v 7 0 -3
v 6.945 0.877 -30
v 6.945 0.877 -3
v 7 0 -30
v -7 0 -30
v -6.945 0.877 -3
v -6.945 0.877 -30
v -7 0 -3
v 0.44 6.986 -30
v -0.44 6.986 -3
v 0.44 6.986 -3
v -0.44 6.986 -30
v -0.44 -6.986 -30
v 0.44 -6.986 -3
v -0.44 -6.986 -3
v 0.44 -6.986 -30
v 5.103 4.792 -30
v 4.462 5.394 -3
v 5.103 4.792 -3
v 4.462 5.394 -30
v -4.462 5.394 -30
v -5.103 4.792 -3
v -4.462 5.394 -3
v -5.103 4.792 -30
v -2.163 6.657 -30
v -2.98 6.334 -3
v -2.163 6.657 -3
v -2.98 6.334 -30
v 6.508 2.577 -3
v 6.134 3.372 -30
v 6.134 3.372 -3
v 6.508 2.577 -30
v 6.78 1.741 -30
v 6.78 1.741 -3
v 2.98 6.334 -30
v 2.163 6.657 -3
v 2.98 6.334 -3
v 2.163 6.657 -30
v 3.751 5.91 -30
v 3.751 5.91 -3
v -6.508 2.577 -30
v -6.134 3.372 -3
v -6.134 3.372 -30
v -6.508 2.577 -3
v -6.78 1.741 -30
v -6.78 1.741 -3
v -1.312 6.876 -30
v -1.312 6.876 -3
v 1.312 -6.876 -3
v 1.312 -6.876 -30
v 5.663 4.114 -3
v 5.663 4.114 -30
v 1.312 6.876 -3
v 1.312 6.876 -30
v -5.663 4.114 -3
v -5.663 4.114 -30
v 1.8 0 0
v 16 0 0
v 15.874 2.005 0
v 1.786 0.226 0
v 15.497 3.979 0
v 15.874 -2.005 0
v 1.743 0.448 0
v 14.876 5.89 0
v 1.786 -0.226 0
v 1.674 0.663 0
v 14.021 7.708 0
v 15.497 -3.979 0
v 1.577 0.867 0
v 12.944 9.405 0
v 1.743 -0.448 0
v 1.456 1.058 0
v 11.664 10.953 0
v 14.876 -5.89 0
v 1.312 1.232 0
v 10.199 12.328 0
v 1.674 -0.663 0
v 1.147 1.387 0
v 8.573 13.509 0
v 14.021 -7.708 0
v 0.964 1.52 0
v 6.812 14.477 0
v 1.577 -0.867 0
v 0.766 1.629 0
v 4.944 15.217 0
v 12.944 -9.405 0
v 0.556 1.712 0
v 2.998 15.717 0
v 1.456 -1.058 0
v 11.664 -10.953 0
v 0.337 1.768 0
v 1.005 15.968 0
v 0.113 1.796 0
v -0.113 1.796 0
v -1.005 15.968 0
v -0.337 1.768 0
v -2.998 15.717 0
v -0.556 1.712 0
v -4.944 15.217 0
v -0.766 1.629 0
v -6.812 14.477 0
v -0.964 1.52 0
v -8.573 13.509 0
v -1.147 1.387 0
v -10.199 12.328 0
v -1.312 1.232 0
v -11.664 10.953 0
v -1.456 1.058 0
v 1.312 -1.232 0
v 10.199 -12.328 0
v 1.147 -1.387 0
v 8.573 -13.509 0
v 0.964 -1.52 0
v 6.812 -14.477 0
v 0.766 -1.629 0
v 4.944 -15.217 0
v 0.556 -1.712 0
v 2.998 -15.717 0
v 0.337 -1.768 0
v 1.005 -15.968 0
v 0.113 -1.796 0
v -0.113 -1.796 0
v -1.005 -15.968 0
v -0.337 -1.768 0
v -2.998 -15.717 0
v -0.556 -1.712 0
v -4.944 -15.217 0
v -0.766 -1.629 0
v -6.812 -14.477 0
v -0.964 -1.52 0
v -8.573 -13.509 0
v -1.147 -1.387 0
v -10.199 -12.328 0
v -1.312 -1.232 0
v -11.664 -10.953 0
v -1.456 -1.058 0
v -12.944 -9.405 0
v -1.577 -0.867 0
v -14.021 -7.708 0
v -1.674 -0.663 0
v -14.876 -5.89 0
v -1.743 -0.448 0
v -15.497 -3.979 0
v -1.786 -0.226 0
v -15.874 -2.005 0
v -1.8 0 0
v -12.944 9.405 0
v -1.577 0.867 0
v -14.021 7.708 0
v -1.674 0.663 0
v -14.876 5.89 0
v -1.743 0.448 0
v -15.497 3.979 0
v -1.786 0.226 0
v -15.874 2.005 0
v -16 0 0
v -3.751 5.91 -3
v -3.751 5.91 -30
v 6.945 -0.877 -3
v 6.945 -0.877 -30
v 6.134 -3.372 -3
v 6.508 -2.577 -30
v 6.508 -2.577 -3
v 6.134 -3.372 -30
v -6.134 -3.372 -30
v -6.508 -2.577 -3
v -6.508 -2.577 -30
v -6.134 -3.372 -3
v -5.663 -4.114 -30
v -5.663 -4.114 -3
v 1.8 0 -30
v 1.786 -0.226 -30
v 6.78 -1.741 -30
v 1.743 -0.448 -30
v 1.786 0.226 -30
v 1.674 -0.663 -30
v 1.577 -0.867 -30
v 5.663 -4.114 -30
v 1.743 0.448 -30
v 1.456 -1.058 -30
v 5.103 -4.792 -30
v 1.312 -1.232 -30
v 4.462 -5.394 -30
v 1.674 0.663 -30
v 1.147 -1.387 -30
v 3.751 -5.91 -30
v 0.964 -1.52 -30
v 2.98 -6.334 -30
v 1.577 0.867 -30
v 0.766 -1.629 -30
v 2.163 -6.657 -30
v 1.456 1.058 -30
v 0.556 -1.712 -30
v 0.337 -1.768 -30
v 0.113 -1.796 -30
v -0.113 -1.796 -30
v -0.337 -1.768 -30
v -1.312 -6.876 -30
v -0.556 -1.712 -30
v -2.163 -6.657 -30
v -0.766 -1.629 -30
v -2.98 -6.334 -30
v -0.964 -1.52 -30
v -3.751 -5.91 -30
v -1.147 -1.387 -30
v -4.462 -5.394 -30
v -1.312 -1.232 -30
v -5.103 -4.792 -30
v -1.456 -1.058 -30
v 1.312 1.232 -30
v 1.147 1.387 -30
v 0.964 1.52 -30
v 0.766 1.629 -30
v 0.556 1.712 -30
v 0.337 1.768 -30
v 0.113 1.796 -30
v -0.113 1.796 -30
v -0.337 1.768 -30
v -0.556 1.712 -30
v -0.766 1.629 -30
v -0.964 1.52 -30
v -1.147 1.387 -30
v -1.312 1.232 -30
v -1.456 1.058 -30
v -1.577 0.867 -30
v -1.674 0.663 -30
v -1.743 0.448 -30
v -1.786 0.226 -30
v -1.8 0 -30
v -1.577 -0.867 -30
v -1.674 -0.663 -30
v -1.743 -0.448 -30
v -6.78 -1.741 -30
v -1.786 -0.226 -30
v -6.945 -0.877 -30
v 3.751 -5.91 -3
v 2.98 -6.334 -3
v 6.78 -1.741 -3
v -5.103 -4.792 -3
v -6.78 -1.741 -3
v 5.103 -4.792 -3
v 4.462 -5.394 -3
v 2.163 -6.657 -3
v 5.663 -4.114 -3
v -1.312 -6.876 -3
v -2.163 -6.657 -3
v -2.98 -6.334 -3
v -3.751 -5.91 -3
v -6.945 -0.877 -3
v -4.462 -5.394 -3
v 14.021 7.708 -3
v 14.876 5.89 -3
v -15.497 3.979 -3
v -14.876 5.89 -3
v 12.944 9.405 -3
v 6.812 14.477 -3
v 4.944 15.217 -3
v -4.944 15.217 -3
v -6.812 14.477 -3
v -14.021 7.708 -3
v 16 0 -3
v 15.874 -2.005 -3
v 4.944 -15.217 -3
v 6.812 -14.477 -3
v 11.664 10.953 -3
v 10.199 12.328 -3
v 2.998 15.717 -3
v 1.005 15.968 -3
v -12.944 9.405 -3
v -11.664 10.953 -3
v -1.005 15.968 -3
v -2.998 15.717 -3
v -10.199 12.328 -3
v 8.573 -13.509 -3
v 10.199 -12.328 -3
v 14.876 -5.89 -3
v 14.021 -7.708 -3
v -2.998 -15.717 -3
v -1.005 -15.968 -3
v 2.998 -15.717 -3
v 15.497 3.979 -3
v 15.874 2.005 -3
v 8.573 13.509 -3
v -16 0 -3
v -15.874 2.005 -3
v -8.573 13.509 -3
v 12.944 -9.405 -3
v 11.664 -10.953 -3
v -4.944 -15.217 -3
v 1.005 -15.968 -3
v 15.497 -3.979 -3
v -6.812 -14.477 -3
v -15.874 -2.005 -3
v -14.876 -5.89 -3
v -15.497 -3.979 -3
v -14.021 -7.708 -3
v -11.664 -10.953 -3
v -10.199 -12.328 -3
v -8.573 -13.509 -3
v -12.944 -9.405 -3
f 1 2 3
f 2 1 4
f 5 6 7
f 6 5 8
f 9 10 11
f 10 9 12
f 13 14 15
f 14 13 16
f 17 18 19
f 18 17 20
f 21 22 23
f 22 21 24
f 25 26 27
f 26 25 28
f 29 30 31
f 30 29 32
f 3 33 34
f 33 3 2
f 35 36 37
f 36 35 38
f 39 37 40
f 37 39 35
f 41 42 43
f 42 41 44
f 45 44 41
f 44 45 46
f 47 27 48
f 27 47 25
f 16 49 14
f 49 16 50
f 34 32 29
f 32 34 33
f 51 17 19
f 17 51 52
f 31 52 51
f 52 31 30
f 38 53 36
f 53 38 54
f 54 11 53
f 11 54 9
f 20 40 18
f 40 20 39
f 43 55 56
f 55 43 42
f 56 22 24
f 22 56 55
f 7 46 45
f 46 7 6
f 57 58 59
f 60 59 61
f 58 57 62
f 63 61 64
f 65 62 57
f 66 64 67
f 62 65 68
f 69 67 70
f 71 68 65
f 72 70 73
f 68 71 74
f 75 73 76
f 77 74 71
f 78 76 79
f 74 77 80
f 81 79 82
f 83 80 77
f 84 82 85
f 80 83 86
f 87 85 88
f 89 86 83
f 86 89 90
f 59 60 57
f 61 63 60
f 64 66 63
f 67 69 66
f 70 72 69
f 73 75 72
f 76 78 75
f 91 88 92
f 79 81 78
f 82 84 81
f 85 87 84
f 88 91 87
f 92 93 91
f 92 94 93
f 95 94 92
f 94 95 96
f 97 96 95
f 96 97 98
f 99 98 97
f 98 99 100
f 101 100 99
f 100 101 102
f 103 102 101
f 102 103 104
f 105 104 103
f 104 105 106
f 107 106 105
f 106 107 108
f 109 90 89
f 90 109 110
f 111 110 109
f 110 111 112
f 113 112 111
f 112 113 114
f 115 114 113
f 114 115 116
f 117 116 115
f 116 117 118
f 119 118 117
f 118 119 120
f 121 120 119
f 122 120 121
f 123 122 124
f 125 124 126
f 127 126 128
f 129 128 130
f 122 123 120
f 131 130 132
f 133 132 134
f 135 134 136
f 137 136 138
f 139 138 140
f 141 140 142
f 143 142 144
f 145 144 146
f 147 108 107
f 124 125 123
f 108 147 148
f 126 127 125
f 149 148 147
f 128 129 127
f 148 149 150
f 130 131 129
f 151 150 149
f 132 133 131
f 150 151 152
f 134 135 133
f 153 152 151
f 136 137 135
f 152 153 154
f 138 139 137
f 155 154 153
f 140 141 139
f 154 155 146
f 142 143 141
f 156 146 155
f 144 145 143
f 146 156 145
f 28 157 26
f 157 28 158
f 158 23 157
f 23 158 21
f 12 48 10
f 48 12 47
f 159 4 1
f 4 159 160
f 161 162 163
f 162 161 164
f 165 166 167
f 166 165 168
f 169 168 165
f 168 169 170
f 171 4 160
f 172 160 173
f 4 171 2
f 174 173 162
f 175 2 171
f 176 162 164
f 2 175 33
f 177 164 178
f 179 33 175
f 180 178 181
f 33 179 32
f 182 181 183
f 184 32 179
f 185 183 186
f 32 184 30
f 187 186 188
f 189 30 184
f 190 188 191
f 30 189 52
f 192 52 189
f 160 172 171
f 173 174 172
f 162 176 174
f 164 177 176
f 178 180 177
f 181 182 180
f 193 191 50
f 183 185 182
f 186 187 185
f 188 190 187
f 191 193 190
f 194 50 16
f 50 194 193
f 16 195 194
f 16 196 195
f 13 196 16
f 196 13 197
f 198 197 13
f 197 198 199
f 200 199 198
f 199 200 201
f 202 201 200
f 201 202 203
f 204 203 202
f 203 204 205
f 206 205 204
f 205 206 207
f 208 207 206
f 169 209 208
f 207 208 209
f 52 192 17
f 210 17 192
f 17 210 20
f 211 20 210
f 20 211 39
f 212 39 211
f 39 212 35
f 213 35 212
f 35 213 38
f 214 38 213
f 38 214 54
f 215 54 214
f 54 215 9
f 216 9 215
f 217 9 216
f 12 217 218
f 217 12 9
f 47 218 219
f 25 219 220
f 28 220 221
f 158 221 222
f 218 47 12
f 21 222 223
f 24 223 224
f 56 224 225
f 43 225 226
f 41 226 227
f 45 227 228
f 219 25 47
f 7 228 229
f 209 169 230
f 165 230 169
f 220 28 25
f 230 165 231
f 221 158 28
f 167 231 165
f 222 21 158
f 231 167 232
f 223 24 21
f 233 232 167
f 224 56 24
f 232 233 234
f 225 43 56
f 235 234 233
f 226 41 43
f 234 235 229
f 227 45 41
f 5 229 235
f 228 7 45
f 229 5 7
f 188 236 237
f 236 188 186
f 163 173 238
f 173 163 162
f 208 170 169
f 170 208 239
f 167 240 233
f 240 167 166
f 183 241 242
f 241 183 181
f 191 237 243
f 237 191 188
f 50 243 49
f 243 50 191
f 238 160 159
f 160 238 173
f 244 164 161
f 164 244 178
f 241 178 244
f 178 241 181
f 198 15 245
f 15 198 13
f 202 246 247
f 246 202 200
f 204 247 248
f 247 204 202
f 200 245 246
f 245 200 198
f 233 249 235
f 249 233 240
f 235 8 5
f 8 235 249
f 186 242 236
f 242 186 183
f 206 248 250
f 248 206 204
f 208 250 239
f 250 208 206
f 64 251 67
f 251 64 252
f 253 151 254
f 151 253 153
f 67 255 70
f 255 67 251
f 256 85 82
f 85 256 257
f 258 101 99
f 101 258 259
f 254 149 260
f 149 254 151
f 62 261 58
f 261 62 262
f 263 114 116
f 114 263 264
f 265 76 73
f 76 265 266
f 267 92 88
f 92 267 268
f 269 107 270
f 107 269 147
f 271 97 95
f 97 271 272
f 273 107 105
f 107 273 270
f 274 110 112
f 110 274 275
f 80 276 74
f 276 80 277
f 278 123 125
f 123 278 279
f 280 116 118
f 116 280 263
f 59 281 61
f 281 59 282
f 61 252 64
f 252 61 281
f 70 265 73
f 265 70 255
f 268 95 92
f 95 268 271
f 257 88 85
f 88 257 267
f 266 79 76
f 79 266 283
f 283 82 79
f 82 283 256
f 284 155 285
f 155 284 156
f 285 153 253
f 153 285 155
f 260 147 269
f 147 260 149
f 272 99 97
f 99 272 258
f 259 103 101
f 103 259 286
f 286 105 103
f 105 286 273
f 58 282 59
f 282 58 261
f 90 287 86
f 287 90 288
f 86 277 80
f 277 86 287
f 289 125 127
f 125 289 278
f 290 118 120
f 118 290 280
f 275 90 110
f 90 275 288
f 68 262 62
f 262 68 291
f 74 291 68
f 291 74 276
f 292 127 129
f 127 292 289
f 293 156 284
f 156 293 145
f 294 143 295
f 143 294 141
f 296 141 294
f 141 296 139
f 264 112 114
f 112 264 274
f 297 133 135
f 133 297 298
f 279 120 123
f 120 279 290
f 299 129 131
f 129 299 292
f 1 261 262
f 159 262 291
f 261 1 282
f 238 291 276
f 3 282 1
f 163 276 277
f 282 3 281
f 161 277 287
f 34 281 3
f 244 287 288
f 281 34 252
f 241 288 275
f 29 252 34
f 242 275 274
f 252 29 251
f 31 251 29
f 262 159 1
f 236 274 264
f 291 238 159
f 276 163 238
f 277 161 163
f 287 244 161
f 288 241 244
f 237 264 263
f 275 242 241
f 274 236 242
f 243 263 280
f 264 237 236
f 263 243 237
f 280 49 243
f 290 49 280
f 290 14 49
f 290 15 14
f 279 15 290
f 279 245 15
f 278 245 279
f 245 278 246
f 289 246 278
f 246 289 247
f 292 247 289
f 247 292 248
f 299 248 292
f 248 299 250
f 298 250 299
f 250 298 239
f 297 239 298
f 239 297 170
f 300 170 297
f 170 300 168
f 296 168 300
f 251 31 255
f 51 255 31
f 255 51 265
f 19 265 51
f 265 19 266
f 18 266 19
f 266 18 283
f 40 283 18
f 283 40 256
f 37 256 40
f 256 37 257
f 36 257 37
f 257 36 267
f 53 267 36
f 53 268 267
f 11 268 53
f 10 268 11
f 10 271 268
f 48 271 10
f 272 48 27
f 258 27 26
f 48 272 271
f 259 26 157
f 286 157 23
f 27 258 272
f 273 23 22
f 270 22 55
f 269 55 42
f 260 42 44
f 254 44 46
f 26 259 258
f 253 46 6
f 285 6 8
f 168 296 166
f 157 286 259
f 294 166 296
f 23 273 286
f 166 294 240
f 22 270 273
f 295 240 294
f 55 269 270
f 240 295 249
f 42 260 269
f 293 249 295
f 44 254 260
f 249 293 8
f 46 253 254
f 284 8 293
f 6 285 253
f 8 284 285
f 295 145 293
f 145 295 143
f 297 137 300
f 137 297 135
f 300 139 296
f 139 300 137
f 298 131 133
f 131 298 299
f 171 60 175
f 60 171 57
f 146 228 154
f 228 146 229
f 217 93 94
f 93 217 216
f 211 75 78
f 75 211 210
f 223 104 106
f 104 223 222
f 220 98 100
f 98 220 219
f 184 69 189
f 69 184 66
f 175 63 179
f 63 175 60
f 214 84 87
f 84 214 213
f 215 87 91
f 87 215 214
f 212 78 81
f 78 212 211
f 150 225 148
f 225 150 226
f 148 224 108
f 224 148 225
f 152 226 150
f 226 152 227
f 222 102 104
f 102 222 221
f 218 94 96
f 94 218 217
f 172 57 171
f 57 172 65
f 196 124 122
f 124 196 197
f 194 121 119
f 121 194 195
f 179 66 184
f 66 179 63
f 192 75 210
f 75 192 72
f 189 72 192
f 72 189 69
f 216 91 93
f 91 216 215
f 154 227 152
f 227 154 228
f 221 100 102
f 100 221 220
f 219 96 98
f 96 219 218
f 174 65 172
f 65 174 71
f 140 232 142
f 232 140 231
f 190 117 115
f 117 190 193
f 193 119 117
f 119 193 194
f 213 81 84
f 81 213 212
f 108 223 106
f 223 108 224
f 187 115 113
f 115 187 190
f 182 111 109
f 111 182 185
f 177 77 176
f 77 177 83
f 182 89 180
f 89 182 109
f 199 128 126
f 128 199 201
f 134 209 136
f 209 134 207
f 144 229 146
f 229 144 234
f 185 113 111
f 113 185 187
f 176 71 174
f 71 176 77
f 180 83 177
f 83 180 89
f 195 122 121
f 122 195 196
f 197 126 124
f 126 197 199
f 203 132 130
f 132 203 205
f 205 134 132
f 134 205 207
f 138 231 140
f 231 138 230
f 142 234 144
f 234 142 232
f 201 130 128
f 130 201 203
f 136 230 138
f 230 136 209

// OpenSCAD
$fn = 50;


difference() {
	union() {
		translate(v = [0, 0, -30.0000000000]) {
			cylinder(h = 30, r = 7.0000000000);
		}
		translate(v = [0, 0, -3.0000000000]) {
			cylinder(h = 3, r = 16.0000000000);
		}
	}
	union() {
		#translate(v = [0, 0, -30]) {
			cylinder(h = 30, r = 1.8000000000);
		}
	}
}
